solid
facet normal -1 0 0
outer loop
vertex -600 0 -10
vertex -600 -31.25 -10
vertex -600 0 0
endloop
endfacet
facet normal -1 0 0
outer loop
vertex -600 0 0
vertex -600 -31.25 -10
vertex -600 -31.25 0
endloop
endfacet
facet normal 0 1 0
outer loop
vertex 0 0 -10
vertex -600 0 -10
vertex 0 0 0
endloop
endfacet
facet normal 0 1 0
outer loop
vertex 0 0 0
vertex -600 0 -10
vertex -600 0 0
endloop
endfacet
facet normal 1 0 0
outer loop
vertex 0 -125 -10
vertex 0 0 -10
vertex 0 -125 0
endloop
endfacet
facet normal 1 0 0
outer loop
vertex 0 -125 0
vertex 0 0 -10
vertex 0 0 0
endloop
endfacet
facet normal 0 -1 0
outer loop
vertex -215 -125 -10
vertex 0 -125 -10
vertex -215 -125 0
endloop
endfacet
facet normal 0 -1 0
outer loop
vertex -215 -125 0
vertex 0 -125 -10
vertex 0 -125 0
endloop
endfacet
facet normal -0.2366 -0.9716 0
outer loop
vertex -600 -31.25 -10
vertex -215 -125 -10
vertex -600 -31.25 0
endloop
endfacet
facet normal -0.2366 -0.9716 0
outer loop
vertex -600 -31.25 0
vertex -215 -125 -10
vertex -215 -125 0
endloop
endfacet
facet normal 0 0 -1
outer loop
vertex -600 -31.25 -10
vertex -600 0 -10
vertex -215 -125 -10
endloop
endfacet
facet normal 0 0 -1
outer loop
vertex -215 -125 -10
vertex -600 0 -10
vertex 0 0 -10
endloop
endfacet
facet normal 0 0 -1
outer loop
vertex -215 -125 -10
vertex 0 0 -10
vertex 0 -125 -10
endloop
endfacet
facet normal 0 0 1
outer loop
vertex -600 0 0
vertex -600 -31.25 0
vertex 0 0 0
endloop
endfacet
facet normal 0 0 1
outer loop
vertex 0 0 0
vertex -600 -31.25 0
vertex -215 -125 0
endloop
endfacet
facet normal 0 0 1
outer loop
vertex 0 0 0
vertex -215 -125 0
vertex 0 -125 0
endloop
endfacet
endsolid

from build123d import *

# Parameters (mm, degrees)
BOSS_EXTRU_1_DEPTH = 10


with BuildPart() as part:
    # Esquisse1 → Boss.-Extru.1 (new body)
    with BuildSketch(Plane.XY):
        Polygon((-600, 0), (0, 0), (0, -125), (-215, -125), (-600, -31.25), align=None)
    extrude(amount=-BOSS_EXTRU_1_DEPTH)


solid = part.part
